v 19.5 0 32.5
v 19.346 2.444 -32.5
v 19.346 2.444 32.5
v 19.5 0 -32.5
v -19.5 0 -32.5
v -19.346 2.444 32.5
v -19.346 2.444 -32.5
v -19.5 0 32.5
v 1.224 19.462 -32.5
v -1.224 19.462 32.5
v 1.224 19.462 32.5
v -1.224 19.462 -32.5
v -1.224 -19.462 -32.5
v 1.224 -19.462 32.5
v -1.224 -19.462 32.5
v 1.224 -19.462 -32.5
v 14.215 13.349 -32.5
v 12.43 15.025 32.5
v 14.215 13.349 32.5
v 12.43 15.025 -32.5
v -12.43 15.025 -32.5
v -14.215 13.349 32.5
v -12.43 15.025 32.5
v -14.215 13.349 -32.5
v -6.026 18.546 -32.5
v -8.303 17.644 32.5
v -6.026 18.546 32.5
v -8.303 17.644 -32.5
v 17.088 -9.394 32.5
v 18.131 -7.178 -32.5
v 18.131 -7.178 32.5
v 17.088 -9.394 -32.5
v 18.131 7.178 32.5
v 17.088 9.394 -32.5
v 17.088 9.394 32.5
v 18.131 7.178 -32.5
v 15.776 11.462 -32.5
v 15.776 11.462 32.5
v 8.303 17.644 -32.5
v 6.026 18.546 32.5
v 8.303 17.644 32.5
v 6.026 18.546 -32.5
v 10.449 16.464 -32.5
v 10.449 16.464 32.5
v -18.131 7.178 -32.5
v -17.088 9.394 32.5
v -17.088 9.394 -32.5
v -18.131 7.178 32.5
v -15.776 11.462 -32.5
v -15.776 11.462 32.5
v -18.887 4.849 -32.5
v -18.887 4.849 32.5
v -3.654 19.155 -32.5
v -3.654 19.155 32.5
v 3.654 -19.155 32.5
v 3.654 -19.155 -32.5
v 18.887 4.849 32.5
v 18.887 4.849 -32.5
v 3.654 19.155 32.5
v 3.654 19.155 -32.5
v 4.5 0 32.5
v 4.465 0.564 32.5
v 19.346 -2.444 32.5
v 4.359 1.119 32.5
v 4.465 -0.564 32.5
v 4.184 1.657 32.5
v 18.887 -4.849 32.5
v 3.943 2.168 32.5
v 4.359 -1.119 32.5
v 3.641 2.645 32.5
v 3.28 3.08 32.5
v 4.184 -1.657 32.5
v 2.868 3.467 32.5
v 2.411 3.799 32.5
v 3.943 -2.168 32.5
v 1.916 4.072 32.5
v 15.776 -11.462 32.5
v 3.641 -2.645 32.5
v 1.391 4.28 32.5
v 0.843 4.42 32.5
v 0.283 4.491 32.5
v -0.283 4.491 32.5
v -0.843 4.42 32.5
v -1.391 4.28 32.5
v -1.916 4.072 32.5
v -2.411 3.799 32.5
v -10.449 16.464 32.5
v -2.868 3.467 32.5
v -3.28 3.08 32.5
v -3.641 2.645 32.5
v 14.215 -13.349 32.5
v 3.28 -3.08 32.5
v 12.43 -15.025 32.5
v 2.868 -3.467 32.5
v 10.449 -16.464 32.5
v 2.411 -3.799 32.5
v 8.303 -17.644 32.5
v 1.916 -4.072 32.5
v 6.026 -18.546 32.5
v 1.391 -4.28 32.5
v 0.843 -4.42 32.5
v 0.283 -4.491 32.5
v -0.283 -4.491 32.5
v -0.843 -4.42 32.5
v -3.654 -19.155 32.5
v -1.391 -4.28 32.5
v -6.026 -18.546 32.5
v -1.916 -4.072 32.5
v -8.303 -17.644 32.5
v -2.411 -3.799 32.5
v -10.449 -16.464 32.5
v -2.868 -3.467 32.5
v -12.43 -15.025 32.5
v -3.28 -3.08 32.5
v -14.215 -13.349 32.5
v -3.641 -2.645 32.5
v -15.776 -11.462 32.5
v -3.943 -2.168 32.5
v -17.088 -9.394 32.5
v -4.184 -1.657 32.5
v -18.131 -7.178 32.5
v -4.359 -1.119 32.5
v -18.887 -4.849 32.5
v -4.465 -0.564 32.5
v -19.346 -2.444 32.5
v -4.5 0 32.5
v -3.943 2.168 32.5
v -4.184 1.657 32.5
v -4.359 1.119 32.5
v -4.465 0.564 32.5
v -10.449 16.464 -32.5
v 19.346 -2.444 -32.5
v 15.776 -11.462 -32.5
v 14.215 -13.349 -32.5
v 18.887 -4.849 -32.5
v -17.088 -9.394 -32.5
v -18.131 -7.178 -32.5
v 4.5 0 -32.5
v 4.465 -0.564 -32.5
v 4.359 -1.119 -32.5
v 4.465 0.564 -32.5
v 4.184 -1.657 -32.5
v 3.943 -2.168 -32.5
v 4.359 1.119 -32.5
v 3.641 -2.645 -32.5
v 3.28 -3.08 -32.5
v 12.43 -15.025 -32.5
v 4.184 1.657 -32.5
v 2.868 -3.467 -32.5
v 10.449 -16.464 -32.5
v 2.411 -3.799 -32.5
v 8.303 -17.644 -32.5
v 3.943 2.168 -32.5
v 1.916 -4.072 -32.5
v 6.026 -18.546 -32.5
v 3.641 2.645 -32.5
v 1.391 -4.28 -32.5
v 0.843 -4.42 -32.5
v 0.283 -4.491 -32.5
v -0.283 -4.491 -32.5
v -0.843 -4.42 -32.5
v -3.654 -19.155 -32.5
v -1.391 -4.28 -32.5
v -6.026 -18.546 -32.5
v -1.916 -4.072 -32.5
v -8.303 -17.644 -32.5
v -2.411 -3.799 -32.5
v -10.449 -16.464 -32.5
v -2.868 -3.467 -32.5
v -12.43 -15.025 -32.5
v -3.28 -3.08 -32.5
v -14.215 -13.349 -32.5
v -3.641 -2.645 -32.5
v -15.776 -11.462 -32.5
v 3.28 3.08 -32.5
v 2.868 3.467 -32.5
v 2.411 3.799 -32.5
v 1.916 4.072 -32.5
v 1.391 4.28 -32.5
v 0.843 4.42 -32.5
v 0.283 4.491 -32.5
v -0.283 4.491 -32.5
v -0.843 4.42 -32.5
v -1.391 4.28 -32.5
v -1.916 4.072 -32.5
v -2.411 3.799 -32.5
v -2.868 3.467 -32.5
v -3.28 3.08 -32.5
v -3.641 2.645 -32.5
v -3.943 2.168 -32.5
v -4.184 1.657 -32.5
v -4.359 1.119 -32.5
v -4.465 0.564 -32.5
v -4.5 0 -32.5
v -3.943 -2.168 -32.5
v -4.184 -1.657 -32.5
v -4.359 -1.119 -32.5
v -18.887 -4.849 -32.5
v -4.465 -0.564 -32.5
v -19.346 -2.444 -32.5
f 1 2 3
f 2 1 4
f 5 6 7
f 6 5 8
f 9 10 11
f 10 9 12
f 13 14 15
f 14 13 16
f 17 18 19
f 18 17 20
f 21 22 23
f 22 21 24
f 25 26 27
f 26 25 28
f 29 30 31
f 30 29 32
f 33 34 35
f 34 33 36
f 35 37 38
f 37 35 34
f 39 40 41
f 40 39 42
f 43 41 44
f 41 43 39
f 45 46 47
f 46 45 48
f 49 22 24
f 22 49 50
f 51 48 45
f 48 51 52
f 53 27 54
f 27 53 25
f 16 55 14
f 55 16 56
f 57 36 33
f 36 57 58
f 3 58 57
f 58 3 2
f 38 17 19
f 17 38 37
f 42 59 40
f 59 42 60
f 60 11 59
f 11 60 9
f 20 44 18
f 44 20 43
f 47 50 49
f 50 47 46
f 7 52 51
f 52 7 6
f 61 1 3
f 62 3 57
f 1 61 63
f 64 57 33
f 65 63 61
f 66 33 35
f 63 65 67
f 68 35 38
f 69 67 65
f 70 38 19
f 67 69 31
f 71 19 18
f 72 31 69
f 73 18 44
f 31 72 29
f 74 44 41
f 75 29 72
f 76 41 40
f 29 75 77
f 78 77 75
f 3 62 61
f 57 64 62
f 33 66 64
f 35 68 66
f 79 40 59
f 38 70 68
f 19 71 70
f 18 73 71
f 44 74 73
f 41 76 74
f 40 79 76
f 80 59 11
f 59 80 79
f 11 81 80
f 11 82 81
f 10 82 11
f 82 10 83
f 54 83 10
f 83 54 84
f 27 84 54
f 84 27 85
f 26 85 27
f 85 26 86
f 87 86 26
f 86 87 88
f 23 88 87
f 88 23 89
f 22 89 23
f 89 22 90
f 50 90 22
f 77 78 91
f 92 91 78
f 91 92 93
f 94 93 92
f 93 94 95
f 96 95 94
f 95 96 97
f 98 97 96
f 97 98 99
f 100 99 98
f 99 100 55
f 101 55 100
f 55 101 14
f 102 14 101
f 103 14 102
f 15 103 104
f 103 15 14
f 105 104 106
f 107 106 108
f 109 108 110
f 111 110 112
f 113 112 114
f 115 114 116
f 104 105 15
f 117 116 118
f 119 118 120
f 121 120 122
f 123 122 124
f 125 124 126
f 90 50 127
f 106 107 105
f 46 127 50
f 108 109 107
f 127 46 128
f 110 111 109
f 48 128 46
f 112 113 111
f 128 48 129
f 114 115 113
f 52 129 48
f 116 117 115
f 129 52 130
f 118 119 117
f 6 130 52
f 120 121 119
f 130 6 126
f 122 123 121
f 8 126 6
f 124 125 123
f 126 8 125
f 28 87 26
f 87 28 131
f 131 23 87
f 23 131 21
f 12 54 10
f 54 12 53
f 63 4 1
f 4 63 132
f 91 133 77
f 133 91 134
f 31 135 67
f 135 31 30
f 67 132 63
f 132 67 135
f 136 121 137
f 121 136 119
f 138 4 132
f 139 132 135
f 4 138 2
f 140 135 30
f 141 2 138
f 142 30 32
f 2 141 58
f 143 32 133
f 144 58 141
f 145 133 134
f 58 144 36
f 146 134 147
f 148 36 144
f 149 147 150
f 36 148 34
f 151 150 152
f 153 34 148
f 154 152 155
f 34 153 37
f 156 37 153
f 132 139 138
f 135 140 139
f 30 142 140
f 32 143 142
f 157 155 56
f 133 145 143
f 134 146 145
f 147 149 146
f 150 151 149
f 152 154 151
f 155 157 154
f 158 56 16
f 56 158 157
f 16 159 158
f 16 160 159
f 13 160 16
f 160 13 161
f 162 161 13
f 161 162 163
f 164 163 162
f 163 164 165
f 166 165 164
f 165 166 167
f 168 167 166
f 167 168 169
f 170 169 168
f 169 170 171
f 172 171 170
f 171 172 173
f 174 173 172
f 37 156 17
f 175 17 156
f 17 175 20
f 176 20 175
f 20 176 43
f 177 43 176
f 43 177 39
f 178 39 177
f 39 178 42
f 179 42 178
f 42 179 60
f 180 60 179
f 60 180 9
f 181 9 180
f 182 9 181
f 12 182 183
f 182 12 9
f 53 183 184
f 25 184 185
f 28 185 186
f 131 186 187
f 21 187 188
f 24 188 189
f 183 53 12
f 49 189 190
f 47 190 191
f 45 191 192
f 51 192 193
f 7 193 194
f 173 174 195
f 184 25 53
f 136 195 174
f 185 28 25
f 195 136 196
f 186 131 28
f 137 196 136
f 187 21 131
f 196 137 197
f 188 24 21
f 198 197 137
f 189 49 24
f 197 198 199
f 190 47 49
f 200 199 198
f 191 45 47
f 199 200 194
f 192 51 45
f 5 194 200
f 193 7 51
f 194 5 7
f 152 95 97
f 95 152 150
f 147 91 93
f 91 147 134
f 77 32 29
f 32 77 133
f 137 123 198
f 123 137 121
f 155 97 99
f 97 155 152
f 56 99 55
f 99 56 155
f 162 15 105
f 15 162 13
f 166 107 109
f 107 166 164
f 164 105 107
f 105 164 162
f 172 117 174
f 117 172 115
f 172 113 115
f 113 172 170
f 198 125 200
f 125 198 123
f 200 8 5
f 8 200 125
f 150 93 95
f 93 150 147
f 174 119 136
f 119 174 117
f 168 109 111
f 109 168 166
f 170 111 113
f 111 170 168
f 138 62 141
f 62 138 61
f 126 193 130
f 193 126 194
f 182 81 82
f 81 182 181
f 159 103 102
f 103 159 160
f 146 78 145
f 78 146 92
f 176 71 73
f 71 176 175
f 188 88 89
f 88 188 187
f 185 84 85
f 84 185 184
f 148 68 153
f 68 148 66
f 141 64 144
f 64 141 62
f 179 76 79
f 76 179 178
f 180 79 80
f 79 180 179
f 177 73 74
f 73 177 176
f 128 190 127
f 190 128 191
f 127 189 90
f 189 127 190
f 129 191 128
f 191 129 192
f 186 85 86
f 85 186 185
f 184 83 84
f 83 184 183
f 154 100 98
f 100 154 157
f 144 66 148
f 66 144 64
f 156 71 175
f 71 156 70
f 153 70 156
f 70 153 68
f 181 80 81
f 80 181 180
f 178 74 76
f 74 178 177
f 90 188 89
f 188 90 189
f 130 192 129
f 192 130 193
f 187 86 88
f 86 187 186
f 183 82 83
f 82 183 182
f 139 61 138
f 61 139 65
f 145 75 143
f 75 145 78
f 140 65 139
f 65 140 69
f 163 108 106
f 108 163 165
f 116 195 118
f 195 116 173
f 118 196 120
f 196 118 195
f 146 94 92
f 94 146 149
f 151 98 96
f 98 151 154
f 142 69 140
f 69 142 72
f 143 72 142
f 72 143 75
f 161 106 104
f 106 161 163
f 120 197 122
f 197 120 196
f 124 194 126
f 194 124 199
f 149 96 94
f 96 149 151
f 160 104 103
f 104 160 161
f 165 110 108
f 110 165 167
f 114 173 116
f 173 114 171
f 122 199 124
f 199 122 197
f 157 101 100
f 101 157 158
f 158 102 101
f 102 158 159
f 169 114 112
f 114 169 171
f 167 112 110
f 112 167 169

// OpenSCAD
$fn = 50;


difference() {
	union() {
		translate(v = [0, 0, -32.5000000000]) {
			cylinder(h = 65, r = 19.5000000000);
		}
	}
	union() {
		translate(v = [0, 0, -100.0000000000]) {
			cylinder(h = 200, r = 4.5000000000);
		}
	}
}
